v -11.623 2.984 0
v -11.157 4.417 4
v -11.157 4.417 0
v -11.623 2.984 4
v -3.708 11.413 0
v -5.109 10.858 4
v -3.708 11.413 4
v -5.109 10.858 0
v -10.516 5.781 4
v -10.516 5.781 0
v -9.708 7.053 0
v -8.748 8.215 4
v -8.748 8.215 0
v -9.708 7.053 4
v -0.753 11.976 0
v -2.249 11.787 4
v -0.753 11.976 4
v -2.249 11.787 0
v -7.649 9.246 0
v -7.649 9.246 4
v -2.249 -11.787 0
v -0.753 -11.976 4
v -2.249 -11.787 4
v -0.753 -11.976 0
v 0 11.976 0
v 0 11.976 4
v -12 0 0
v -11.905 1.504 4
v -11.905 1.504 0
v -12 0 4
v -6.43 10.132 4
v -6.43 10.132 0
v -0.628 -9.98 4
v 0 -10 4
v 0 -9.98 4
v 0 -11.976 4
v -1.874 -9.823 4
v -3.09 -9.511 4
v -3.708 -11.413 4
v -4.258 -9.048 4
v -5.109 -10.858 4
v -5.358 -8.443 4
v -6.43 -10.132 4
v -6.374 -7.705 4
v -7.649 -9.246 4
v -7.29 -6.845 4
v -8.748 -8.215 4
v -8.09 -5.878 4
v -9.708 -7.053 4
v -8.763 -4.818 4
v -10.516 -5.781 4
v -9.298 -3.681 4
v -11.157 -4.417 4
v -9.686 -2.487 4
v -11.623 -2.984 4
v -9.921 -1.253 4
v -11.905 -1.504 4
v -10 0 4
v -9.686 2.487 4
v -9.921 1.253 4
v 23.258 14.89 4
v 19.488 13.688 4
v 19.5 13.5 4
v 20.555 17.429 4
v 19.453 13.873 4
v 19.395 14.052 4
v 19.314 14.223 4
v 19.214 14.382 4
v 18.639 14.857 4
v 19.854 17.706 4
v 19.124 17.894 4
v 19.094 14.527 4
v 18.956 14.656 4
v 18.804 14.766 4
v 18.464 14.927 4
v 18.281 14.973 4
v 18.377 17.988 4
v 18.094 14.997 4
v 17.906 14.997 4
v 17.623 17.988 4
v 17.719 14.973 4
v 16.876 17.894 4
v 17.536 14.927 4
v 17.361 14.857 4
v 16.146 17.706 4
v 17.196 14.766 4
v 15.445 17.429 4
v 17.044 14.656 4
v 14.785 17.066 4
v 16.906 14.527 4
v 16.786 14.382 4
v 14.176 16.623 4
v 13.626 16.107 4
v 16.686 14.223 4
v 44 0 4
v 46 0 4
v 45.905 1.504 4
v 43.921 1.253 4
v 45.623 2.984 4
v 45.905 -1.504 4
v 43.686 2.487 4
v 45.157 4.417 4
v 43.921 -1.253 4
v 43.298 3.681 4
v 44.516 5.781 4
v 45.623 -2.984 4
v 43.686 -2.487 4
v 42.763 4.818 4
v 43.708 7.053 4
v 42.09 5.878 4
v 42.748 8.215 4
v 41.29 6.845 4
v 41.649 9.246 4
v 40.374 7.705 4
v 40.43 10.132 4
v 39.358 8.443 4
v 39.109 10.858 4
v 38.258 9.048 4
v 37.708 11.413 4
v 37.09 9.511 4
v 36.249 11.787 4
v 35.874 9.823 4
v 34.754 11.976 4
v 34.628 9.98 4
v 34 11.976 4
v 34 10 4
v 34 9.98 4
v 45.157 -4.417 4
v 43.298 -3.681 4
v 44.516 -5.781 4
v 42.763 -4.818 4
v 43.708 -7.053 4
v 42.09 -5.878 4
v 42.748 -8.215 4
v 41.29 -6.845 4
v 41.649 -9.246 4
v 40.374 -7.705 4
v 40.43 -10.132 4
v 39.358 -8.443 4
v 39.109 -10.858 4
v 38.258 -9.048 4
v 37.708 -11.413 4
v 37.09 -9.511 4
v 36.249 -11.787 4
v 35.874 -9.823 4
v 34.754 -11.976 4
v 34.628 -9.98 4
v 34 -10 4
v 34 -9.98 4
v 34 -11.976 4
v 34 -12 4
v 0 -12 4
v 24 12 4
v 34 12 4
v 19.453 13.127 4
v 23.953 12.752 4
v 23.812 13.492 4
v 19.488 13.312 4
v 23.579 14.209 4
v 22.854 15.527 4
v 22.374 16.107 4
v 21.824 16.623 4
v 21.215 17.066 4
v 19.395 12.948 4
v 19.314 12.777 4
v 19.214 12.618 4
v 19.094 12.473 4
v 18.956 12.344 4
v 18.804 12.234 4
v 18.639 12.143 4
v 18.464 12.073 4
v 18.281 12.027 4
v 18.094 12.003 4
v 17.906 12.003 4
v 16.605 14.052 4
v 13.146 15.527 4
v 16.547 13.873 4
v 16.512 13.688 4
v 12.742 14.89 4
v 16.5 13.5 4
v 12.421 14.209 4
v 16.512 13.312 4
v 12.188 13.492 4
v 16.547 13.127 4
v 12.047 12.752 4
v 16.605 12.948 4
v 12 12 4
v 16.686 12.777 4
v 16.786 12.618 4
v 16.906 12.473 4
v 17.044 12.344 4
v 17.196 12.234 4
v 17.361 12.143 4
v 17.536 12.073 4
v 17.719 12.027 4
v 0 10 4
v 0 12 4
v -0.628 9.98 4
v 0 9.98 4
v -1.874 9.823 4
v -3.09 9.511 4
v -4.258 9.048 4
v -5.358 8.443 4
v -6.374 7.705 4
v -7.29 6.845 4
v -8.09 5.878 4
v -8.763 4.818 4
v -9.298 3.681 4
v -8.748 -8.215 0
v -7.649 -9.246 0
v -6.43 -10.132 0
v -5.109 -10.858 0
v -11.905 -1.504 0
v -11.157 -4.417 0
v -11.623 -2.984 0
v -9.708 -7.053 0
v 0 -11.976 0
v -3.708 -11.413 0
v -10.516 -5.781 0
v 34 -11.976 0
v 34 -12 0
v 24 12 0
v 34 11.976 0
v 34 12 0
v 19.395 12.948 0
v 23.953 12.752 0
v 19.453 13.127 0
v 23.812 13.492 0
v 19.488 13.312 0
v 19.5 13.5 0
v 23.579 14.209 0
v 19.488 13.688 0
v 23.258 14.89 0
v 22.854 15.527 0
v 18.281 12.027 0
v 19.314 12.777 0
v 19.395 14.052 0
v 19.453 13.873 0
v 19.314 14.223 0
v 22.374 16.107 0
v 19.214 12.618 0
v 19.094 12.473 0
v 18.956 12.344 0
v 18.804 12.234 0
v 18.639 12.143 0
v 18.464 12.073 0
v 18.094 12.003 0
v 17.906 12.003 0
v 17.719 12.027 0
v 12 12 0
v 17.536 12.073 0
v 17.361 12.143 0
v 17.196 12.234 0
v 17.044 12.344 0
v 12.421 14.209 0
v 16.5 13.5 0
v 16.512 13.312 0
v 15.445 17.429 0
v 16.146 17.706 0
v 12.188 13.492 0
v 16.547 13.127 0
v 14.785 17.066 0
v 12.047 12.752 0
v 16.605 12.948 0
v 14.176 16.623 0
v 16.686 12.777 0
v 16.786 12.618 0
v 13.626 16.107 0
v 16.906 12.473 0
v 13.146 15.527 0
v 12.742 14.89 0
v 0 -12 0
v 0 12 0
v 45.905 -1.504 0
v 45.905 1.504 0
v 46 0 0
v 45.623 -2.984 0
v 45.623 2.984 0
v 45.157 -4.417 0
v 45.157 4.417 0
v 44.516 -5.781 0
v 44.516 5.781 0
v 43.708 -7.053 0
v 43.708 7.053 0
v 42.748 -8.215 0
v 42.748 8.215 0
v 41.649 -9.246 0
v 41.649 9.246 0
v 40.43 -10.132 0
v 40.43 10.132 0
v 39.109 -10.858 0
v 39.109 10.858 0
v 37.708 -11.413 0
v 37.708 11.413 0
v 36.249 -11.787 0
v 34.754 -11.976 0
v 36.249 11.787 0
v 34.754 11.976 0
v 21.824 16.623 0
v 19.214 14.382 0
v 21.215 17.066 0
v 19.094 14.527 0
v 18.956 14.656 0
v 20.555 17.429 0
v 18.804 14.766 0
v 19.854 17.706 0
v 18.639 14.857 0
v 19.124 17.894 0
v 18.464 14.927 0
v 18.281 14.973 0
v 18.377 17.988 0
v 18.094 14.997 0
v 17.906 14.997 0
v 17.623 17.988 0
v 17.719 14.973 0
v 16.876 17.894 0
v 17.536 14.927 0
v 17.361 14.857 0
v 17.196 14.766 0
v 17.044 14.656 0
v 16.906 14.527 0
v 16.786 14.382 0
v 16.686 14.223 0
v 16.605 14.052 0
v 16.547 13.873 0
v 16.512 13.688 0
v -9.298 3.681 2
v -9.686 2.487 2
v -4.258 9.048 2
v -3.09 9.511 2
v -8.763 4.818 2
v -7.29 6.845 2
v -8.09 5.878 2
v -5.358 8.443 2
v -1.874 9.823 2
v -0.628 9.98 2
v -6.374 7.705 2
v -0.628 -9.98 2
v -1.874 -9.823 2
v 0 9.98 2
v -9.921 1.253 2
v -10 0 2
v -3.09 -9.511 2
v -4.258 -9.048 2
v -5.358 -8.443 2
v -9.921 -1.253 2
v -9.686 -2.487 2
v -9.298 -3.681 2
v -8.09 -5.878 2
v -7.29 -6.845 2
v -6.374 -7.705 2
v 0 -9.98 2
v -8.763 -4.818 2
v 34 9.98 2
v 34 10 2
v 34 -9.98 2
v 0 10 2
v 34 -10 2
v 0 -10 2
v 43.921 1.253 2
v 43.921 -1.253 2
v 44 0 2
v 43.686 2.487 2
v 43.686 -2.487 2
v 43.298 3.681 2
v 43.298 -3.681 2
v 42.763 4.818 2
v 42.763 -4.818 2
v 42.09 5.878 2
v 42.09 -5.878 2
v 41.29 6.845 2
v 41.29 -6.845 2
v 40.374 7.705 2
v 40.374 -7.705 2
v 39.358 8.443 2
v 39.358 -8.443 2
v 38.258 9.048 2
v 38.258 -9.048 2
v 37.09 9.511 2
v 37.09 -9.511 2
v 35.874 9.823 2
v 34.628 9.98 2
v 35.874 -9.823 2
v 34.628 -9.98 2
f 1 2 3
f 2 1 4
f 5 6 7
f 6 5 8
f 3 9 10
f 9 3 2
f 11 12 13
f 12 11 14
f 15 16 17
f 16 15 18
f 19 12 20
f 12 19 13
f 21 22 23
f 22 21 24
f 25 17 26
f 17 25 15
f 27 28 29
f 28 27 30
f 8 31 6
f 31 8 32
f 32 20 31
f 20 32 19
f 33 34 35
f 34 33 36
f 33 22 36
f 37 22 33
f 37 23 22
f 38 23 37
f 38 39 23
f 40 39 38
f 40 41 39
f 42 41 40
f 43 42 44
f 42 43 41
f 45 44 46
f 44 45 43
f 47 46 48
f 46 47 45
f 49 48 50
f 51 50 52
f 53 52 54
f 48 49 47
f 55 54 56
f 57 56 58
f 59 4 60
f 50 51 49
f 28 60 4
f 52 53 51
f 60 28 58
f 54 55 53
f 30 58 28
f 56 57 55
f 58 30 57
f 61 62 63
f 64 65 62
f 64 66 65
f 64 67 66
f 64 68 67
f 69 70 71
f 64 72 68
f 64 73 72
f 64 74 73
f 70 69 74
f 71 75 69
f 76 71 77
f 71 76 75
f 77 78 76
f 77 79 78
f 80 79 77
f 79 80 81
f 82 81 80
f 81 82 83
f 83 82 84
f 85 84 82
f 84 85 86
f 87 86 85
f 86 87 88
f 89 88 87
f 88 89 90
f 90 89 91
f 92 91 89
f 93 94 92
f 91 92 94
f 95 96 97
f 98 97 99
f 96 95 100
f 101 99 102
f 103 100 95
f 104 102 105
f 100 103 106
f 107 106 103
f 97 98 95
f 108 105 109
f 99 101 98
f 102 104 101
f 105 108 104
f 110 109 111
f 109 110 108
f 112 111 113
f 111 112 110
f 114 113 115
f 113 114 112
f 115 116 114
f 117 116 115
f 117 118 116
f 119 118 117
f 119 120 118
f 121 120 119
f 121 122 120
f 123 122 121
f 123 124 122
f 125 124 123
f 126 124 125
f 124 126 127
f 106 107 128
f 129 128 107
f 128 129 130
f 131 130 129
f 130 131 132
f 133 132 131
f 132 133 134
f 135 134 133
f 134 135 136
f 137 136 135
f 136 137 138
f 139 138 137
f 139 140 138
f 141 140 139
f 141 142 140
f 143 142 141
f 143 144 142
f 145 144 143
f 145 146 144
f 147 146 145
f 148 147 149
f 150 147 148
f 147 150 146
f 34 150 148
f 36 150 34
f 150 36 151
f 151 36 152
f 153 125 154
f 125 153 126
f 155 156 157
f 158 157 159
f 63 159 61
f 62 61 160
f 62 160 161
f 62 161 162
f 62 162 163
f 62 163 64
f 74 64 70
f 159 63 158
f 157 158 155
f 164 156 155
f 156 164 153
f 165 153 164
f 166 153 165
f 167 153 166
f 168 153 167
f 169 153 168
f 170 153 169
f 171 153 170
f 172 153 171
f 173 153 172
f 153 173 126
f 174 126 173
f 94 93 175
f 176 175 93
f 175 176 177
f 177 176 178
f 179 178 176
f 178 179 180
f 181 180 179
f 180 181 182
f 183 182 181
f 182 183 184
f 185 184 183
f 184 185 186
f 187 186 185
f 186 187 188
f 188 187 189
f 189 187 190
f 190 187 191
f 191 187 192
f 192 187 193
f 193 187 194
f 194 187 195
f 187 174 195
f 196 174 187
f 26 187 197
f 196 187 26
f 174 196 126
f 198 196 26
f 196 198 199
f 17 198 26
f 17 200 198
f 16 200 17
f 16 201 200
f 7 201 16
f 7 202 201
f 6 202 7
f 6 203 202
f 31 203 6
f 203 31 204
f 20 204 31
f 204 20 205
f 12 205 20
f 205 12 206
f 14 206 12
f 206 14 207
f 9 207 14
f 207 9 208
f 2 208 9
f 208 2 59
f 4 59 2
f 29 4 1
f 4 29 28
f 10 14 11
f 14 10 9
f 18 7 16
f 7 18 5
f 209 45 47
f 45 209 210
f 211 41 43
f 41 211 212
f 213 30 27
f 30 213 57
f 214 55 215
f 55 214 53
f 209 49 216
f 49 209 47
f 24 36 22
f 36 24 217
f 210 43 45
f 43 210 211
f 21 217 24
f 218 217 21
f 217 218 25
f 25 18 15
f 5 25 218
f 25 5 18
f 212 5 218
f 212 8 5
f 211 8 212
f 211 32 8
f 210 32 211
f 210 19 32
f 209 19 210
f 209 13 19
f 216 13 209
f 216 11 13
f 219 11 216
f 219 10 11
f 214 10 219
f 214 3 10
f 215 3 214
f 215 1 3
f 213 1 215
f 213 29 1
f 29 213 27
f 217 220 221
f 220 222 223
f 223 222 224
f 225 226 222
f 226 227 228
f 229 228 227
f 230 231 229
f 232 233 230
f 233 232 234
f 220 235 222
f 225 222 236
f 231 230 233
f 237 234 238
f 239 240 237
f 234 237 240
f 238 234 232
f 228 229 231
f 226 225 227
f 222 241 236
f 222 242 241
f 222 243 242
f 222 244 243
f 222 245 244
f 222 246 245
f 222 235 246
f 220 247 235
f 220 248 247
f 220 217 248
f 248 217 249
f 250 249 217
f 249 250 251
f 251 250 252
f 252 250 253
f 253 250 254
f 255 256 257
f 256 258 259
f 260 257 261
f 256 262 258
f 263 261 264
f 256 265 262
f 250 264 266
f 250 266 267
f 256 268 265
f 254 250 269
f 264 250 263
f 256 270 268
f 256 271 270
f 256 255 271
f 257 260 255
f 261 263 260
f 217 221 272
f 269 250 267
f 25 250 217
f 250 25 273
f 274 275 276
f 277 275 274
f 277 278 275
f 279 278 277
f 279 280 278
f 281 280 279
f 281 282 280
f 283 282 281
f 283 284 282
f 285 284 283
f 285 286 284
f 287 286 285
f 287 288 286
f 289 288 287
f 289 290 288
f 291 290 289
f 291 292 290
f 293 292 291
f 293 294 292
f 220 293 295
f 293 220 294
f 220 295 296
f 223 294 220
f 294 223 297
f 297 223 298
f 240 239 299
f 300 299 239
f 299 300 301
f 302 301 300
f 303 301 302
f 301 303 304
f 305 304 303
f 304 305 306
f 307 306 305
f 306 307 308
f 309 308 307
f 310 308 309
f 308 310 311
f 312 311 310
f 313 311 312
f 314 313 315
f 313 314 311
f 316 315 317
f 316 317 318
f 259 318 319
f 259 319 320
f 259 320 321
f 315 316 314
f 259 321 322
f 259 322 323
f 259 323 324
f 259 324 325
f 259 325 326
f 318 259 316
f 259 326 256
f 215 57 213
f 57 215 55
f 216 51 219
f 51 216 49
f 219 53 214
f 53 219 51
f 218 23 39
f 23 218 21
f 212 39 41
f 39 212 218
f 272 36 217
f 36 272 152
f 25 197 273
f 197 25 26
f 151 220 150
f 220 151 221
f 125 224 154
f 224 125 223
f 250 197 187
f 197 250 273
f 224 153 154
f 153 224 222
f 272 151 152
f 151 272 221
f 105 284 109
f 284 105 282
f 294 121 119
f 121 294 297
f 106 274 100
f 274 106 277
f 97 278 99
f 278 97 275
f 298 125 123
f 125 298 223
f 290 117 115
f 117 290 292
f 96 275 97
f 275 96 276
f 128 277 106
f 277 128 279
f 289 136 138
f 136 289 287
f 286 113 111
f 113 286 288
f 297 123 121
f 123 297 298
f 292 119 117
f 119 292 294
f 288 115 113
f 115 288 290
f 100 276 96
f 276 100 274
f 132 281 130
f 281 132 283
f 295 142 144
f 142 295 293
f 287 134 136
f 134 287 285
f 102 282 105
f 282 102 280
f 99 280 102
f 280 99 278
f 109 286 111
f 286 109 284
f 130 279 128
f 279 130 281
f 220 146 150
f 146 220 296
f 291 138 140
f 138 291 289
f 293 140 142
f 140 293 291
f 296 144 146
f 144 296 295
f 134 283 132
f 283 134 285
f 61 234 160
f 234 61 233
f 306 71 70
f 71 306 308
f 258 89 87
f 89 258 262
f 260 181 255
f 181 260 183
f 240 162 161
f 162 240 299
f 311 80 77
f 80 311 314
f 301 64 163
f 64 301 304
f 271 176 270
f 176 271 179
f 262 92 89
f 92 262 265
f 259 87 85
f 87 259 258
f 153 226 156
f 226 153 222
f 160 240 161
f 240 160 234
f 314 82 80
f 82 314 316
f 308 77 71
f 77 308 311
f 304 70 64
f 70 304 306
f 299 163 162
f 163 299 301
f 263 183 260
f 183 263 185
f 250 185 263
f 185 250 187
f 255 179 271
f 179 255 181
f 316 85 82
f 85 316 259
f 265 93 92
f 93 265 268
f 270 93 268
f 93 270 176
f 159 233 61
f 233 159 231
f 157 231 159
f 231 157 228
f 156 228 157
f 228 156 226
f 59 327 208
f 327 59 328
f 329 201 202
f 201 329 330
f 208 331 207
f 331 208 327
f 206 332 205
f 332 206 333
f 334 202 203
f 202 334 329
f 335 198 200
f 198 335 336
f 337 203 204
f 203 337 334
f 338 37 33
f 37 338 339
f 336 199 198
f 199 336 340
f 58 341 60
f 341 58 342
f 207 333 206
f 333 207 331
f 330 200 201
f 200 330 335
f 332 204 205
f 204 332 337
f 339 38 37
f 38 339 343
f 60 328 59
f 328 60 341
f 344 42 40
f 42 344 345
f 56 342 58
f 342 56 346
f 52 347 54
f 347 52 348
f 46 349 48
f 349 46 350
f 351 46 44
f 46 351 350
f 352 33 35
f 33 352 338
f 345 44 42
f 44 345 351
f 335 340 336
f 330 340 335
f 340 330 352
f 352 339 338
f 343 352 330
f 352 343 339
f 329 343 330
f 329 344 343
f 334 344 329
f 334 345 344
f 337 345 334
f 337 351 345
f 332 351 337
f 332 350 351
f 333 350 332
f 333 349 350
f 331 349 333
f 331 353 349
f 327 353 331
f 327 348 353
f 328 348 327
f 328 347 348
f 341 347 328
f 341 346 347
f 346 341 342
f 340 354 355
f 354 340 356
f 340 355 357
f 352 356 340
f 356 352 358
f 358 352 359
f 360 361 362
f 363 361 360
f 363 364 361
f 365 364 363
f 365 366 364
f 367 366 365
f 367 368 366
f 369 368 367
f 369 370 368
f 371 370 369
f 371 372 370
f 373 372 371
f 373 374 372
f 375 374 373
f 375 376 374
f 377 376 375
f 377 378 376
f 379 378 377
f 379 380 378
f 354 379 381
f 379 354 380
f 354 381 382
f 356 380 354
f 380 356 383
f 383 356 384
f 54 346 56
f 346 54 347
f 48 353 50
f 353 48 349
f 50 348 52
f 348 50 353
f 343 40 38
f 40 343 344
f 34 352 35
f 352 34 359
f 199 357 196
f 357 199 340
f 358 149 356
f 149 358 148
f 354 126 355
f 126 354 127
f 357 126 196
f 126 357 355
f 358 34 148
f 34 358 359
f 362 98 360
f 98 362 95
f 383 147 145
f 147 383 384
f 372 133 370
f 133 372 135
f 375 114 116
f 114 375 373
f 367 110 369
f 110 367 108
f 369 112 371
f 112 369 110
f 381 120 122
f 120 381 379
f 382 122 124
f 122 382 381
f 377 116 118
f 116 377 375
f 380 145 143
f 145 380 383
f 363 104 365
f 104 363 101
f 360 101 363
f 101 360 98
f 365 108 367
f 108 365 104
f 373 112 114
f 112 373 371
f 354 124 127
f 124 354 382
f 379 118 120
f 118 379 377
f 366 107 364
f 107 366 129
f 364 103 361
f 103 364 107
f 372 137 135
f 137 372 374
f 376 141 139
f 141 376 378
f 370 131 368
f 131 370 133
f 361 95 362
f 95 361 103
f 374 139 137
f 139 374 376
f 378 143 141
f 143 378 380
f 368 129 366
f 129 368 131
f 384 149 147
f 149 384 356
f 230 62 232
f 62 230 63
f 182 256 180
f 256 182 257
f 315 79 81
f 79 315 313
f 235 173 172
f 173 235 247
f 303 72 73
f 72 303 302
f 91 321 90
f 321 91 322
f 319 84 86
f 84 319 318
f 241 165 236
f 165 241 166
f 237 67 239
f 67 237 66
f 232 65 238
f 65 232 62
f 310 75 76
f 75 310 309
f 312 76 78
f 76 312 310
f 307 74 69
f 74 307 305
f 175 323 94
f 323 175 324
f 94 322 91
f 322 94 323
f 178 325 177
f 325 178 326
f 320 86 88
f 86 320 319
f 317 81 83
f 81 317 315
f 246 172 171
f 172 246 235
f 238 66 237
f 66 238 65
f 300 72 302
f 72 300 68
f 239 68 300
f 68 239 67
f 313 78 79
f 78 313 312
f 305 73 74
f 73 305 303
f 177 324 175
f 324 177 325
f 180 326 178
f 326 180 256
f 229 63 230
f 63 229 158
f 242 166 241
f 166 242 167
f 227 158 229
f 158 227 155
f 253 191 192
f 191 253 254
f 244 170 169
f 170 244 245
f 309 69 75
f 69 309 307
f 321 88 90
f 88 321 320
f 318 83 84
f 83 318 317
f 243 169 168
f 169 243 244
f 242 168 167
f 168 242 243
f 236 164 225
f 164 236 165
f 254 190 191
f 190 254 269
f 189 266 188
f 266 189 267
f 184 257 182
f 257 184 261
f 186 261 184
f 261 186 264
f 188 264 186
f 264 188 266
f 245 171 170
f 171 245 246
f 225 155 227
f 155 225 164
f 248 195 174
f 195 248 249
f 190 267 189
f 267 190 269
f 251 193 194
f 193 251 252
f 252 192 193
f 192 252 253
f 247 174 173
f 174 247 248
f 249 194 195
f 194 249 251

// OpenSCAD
$fn=50;
difference() {
    union() {
        cylinder(4,24/2,24/2);
        translate([0,-12,0])cube([34,24,4]);
        translate([34,0,0])cylinder(4,24/2,24/2);
        translate([18,12,0])cylinder(4,12/2,12/2);
    }
    translate([0,0,2])cylinder(2,20/2,20/2);
    translate([0,-10,2])cube([34,20,2]);
    translate([34,0,2])cylinder(2,20/2,20/2);
    translate([18,13.5,0])cylinder(4,3/2,3/2);
}
